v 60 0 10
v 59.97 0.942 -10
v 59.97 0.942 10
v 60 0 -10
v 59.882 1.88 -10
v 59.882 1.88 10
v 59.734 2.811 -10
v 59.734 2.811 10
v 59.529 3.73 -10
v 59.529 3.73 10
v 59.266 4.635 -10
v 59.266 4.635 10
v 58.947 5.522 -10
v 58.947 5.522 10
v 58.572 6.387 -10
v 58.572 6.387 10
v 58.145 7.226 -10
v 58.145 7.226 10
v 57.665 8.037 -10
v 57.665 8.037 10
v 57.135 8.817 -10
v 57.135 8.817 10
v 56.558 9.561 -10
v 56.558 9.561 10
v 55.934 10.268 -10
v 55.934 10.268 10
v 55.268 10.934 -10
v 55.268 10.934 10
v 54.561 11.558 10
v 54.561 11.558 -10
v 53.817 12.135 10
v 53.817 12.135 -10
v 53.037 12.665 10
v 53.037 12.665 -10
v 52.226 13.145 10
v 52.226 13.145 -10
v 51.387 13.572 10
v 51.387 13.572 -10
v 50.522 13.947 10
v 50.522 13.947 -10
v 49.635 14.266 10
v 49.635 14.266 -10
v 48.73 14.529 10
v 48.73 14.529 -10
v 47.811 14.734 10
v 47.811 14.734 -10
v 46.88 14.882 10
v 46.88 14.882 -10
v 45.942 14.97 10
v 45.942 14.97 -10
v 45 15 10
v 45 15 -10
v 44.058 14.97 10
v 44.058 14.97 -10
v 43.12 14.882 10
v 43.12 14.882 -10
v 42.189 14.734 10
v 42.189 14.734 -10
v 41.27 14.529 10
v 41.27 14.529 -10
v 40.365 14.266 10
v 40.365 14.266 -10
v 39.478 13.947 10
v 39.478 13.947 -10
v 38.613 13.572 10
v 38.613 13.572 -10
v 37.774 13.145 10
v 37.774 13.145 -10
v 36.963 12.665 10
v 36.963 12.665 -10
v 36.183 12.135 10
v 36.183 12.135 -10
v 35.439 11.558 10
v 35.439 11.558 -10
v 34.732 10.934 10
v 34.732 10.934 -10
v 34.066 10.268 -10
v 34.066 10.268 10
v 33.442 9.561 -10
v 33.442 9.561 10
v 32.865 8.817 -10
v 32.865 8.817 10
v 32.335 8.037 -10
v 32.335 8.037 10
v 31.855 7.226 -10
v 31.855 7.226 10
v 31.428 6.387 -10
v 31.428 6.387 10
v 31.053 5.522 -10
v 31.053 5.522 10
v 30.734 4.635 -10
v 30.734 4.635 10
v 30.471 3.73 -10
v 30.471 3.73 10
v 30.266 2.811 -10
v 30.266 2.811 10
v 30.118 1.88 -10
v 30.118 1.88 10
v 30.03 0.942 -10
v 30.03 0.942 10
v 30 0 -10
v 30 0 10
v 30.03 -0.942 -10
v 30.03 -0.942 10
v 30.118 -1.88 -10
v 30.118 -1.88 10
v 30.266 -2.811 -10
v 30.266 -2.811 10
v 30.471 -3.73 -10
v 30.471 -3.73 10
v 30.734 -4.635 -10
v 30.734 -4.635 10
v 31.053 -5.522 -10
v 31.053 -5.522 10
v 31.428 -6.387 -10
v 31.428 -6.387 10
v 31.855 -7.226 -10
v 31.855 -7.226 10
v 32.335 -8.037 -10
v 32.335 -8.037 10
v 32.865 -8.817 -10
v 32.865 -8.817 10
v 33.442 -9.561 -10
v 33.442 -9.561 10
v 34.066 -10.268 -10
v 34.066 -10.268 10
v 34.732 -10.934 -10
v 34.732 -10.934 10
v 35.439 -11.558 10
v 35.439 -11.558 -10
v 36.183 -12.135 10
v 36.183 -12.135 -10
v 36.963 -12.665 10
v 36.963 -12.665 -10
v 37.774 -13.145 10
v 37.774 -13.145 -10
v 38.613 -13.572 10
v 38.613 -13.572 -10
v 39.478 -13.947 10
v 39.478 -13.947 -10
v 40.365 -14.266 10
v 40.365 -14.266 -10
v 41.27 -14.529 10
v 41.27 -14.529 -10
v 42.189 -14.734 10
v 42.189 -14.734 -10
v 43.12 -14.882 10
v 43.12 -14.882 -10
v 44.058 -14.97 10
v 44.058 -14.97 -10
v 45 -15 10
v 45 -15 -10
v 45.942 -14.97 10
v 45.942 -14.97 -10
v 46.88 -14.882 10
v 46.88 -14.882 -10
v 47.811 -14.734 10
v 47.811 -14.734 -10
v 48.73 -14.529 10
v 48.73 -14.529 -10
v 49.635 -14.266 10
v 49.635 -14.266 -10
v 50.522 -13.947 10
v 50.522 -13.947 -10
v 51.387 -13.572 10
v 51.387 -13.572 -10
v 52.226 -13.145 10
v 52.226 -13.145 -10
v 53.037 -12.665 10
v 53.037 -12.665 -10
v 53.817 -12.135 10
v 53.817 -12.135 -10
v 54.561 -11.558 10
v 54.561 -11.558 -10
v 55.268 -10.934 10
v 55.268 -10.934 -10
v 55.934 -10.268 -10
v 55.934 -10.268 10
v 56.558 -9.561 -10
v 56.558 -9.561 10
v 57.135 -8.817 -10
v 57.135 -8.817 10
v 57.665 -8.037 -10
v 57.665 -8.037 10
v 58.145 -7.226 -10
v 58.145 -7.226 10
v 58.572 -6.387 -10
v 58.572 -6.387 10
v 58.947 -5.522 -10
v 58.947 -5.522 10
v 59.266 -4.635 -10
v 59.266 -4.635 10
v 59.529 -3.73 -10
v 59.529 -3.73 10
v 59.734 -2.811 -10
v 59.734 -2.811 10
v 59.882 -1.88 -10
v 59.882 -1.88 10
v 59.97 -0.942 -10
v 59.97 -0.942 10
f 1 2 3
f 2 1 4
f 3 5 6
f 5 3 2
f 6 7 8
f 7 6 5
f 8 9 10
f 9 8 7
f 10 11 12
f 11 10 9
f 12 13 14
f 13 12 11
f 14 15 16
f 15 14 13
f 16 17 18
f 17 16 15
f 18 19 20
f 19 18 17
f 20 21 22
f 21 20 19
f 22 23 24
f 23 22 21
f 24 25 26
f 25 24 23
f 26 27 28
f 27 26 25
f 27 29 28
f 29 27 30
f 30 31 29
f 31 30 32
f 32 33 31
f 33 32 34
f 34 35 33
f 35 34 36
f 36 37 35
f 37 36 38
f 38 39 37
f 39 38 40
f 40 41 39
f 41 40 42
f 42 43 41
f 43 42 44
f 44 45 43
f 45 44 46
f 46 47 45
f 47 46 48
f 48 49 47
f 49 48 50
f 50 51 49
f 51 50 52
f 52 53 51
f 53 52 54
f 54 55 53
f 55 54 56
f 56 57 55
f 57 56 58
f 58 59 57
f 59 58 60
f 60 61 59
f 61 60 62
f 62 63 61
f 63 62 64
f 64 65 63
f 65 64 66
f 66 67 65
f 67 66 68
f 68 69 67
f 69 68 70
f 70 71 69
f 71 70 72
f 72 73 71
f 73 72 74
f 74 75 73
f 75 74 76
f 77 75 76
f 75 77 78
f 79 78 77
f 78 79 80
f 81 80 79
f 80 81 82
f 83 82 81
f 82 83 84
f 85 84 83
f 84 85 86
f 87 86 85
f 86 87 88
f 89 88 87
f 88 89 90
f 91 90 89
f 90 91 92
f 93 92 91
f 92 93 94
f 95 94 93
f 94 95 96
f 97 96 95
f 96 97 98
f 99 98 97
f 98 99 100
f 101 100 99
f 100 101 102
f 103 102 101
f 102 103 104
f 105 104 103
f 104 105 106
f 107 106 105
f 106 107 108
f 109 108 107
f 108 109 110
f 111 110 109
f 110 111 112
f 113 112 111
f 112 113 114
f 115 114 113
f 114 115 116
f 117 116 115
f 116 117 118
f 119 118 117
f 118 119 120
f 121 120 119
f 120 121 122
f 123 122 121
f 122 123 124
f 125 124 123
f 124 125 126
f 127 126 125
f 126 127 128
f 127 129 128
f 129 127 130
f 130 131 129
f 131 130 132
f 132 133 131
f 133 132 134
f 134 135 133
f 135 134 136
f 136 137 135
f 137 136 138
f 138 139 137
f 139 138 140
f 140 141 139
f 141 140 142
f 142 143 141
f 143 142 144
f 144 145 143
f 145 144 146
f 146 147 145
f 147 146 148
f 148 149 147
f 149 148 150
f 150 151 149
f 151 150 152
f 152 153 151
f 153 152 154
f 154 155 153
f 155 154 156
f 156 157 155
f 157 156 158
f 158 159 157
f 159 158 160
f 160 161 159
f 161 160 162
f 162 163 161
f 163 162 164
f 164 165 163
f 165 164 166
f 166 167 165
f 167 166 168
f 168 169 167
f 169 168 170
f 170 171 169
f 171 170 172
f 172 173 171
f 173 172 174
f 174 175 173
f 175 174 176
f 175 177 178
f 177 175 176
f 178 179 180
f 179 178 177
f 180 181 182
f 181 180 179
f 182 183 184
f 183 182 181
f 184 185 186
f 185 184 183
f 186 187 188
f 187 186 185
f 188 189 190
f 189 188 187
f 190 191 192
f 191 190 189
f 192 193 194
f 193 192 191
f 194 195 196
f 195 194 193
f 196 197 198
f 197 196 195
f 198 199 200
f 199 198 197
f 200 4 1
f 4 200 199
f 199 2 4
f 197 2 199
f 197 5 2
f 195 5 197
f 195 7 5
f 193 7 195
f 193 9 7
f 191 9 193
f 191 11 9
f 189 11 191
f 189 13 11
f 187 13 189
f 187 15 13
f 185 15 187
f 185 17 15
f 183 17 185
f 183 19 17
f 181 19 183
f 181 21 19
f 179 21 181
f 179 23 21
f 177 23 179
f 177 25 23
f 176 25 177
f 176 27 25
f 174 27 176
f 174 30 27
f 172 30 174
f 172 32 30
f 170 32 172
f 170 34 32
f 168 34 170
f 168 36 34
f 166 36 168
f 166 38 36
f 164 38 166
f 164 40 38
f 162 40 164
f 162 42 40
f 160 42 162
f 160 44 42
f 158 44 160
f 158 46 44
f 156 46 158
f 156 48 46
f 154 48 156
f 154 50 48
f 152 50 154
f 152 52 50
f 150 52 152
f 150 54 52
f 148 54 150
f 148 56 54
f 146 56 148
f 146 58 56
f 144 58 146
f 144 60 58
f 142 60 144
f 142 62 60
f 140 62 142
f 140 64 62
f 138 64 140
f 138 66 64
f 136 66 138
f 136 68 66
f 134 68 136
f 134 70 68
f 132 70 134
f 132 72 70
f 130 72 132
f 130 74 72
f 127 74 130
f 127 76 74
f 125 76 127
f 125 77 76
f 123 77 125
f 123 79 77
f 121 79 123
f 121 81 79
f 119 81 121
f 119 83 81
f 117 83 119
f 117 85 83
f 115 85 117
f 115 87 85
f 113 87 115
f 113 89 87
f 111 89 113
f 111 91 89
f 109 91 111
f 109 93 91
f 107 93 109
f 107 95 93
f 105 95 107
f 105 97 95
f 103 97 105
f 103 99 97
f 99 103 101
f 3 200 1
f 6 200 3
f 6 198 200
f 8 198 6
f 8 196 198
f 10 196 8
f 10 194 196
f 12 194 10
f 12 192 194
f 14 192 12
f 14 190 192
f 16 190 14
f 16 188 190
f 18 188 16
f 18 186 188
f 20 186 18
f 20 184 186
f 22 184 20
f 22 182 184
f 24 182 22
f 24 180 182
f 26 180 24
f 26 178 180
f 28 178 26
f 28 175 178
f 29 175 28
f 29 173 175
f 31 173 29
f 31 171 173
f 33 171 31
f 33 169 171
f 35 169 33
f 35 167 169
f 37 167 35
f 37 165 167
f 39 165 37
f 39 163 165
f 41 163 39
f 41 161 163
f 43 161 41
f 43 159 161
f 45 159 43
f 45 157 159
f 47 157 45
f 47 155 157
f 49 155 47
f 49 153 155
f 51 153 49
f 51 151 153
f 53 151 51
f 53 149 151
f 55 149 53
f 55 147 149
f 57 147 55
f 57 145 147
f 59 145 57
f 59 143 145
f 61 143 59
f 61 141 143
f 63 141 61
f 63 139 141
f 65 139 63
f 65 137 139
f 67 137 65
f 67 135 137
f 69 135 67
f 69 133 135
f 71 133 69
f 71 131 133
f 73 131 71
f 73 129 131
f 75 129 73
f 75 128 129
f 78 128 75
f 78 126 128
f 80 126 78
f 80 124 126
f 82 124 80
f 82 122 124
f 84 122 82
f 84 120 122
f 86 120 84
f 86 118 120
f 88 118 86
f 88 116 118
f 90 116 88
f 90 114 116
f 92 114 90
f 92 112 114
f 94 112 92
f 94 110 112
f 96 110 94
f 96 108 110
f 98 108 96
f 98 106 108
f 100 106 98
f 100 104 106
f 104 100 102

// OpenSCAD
$fn = 100;

translate([45, 0, 0])
rotate([0, 0, 0])
cylinder(20, 15, 15, true);
